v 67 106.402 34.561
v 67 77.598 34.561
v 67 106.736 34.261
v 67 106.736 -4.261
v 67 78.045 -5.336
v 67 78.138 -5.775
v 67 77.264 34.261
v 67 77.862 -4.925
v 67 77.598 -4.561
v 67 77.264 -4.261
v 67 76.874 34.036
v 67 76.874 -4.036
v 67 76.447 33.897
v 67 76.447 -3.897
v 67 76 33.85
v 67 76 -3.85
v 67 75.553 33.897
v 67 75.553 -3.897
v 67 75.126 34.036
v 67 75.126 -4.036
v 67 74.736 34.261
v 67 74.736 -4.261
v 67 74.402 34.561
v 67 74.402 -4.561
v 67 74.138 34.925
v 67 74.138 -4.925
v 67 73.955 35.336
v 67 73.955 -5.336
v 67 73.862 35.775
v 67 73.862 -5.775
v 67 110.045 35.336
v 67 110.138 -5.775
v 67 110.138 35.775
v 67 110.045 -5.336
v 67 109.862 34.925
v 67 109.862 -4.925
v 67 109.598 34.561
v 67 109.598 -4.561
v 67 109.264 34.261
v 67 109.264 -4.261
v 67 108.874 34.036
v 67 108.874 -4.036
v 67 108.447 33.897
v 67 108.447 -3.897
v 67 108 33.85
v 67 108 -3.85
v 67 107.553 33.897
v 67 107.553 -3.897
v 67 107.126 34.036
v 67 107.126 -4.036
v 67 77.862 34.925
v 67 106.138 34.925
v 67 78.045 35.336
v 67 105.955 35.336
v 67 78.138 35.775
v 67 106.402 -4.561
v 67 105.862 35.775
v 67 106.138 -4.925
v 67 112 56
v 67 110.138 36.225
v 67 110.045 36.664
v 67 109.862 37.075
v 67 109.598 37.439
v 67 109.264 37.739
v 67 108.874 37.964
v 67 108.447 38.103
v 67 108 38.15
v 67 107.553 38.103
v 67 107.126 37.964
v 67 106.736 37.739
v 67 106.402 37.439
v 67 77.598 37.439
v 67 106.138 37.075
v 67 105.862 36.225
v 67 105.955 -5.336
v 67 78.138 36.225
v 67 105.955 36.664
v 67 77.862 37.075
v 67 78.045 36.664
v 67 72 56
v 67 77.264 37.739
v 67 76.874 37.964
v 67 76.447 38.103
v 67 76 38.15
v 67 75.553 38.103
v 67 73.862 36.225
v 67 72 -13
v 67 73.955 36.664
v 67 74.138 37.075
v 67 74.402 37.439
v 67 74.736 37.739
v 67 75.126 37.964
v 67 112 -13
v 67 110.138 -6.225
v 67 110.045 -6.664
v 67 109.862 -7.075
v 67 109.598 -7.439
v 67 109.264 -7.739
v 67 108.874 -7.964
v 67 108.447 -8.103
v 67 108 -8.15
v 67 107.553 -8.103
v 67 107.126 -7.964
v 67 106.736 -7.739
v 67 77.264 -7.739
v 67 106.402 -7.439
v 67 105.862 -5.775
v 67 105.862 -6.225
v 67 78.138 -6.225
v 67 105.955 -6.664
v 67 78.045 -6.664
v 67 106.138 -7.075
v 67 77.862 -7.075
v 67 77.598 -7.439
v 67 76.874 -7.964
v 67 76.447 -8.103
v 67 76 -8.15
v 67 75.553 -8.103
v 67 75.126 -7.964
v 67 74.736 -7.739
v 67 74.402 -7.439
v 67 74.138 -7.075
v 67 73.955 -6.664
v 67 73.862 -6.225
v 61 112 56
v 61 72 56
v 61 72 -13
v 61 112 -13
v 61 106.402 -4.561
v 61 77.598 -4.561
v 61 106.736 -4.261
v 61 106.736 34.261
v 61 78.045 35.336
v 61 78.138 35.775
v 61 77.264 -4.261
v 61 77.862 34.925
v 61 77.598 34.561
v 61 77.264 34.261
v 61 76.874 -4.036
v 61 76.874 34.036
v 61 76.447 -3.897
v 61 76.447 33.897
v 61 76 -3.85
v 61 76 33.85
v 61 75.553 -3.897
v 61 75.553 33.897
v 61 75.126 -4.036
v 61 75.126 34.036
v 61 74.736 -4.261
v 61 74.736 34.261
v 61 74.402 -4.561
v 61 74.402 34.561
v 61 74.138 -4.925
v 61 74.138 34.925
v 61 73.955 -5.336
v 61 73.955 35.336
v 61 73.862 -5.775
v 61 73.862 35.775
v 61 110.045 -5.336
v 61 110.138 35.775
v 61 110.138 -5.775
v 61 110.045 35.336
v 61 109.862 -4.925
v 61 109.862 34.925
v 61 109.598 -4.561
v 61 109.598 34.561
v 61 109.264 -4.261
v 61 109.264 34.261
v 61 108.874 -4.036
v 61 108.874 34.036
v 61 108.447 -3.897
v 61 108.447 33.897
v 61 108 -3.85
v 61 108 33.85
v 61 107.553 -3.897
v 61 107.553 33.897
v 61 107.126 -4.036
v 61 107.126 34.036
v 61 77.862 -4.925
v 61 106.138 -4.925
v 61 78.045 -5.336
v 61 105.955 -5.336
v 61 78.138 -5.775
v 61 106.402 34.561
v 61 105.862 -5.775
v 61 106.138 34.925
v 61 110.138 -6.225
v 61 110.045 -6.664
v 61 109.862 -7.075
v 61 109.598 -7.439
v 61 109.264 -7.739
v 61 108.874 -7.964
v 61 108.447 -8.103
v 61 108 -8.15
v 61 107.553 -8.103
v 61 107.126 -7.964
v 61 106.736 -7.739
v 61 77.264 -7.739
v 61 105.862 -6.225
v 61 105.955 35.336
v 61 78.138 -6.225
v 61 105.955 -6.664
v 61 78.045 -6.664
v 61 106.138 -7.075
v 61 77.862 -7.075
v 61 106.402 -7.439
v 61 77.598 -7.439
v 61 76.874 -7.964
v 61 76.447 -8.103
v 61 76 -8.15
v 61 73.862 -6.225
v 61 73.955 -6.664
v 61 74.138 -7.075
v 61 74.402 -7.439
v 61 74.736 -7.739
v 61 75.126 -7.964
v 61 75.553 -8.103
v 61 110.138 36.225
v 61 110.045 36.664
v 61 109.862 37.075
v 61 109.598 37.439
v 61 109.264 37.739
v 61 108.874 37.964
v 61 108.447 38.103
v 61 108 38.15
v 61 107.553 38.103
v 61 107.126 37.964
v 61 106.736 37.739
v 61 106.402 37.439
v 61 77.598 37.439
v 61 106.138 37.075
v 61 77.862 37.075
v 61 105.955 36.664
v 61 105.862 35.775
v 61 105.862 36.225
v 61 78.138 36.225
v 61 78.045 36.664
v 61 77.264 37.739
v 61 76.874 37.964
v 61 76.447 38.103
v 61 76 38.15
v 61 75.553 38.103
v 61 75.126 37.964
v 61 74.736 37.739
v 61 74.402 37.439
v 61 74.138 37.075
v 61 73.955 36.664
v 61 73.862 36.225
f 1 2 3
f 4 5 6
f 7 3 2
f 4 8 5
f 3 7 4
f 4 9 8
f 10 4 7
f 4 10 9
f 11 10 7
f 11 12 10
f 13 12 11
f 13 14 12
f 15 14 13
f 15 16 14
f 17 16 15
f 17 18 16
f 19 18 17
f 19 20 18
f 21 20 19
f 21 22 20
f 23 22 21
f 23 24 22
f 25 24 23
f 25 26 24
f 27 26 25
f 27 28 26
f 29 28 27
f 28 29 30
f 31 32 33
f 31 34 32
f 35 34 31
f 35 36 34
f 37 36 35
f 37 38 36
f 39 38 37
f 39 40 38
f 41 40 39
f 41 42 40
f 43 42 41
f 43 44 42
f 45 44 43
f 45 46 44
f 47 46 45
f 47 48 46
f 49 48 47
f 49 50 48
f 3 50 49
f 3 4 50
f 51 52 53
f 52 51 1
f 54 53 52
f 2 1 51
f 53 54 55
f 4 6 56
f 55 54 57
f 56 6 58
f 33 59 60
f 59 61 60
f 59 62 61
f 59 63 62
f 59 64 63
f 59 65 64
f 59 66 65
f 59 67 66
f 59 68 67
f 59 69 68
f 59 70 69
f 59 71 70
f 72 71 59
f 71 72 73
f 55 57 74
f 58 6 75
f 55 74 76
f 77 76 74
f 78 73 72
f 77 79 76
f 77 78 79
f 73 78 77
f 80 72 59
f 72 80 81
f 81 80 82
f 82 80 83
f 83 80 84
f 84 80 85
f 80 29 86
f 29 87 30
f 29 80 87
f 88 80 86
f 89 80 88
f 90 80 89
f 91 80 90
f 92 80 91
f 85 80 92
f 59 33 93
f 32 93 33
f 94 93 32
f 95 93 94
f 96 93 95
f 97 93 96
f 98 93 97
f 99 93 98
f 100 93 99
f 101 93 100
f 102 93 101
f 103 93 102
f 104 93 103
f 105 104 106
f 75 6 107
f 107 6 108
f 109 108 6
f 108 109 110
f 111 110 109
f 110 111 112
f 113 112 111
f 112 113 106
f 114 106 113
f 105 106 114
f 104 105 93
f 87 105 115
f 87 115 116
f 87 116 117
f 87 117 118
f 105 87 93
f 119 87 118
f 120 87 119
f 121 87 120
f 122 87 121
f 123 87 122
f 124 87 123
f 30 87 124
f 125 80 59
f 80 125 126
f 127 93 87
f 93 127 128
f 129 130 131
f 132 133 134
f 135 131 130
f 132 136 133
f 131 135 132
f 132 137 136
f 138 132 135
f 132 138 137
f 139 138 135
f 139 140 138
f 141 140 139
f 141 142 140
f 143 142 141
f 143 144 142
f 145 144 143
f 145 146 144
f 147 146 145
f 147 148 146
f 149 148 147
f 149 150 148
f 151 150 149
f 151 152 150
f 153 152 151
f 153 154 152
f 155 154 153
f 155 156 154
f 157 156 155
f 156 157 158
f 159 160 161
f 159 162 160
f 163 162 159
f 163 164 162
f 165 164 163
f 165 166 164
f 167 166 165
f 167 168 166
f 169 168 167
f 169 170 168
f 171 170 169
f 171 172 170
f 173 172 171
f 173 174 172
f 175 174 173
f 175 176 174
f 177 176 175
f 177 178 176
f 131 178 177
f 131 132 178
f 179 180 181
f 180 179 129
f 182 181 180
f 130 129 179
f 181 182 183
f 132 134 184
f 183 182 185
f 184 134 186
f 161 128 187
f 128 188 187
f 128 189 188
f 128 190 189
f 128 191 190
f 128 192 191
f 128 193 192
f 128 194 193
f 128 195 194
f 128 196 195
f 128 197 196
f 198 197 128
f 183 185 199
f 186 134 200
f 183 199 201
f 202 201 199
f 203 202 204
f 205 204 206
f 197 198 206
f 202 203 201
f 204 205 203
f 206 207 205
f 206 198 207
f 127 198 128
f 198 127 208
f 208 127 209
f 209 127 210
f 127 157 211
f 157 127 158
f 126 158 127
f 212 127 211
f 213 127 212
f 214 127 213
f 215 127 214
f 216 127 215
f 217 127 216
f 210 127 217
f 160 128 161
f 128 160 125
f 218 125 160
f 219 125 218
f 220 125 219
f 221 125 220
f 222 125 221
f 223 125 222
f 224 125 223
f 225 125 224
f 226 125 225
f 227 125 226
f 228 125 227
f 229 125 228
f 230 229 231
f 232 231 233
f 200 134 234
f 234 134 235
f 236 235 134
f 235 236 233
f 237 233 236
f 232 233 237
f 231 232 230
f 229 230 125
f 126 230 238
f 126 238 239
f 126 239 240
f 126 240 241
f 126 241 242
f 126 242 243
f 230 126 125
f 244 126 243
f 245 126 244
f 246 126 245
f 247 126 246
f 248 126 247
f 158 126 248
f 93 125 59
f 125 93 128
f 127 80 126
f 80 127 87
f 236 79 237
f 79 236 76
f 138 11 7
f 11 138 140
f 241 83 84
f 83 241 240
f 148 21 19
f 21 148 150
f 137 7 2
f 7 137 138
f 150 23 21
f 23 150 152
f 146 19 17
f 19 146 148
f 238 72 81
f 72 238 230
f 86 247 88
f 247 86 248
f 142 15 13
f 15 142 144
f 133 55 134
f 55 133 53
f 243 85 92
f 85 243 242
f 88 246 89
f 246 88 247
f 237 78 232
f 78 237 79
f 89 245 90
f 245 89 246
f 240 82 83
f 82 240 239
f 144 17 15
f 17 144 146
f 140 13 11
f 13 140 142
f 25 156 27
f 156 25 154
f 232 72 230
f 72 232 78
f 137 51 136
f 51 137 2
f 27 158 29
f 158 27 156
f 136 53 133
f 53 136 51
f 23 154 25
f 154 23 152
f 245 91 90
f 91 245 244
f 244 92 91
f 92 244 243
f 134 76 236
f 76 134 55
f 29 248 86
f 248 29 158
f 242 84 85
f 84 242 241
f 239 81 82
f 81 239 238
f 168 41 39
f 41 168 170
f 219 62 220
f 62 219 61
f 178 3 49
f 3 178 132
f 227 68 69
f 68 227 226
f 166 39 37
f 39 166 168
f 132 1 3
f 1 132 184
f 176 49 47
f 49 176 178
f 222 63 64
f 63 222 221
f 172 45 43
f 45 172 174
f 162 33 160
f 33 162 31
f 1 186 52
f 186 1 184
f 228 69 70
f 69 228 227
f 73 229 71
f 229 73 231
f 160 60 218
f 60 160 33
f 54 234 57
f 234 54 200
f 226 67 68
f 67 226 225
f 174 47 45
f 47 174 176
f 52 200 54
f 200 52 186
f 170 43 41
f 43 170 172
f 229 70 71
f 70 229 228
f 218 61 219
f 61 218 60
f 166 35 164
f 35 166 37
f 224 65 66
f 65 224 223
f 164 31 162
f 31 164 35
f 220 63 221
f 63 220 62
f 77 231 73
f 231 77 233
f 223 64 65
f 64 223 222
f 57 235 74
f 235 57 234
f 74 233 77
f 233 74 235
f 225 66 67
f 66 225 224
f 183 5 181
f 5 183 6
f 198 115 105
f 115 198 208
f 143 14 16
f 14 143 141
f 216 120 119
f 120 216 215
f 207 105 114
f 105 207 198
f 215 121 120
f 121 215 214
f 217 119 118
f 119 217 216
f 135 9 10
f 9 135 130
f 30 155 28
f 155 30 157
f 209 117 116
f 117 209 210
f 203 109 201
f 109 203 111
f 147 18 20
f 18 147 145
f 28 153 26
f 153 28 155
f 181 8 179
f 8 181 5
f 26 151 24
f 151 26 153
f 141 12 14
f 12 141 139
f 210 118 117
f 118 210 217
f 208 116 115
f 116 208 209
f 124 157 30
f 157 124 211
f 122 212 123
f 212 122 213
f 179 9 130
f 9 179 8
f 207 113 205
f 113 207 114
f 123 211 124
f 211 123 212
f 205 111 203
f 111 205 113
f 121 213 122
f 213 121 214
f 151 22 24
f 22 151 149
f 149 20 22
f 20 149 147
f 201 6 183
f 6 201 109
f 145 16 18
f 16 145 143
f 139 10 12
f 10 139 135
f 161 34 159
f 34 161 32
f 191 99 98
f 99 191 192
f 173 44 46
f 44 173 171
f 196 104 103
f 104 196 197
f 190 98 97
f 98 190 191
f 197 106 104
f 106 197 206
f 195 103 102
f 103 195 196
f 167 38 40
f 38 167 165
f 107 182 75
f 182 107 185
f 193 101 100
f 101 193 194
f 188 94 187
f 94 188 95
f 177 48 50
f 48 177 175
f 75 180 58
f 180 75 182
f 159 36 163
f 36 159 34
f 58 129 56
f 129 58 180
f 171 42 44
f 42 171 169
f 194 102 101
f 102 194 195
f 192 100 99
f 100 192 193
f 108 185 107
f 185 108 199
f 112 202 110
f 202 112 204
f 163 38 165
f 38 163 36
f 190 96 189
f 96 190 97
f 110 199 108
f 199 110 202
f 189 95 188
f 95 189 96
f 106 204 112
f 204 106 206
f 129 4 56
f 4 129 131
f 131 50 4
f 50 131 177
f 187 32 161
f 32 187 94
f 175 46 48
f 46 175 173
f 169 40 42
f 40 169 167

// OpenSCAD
color ("pink")
difference() {
union () {
    // front plate
    translate([61,72,-13])
    cube([6,40,69]);
}
    // top holes left and right
    translate([-4,76,36])
    rotate([0,90,0])
    cylinder(r=2.15,90, $fn=30);

    translate([-4,108,36])
    rotate([0,90,0])
    cylinder(r=2.15,90, $fn=30);

    // holes compatible with top guard rail
    translate([-4,76,-6])
    rotate([0,90,0])
    cylinder(r=2.15,90, $fn=30);

    translate([-4,108,-6])
    rotate([0,90,0])
    cylinder(r=2.15,90, $fn=30);
}
